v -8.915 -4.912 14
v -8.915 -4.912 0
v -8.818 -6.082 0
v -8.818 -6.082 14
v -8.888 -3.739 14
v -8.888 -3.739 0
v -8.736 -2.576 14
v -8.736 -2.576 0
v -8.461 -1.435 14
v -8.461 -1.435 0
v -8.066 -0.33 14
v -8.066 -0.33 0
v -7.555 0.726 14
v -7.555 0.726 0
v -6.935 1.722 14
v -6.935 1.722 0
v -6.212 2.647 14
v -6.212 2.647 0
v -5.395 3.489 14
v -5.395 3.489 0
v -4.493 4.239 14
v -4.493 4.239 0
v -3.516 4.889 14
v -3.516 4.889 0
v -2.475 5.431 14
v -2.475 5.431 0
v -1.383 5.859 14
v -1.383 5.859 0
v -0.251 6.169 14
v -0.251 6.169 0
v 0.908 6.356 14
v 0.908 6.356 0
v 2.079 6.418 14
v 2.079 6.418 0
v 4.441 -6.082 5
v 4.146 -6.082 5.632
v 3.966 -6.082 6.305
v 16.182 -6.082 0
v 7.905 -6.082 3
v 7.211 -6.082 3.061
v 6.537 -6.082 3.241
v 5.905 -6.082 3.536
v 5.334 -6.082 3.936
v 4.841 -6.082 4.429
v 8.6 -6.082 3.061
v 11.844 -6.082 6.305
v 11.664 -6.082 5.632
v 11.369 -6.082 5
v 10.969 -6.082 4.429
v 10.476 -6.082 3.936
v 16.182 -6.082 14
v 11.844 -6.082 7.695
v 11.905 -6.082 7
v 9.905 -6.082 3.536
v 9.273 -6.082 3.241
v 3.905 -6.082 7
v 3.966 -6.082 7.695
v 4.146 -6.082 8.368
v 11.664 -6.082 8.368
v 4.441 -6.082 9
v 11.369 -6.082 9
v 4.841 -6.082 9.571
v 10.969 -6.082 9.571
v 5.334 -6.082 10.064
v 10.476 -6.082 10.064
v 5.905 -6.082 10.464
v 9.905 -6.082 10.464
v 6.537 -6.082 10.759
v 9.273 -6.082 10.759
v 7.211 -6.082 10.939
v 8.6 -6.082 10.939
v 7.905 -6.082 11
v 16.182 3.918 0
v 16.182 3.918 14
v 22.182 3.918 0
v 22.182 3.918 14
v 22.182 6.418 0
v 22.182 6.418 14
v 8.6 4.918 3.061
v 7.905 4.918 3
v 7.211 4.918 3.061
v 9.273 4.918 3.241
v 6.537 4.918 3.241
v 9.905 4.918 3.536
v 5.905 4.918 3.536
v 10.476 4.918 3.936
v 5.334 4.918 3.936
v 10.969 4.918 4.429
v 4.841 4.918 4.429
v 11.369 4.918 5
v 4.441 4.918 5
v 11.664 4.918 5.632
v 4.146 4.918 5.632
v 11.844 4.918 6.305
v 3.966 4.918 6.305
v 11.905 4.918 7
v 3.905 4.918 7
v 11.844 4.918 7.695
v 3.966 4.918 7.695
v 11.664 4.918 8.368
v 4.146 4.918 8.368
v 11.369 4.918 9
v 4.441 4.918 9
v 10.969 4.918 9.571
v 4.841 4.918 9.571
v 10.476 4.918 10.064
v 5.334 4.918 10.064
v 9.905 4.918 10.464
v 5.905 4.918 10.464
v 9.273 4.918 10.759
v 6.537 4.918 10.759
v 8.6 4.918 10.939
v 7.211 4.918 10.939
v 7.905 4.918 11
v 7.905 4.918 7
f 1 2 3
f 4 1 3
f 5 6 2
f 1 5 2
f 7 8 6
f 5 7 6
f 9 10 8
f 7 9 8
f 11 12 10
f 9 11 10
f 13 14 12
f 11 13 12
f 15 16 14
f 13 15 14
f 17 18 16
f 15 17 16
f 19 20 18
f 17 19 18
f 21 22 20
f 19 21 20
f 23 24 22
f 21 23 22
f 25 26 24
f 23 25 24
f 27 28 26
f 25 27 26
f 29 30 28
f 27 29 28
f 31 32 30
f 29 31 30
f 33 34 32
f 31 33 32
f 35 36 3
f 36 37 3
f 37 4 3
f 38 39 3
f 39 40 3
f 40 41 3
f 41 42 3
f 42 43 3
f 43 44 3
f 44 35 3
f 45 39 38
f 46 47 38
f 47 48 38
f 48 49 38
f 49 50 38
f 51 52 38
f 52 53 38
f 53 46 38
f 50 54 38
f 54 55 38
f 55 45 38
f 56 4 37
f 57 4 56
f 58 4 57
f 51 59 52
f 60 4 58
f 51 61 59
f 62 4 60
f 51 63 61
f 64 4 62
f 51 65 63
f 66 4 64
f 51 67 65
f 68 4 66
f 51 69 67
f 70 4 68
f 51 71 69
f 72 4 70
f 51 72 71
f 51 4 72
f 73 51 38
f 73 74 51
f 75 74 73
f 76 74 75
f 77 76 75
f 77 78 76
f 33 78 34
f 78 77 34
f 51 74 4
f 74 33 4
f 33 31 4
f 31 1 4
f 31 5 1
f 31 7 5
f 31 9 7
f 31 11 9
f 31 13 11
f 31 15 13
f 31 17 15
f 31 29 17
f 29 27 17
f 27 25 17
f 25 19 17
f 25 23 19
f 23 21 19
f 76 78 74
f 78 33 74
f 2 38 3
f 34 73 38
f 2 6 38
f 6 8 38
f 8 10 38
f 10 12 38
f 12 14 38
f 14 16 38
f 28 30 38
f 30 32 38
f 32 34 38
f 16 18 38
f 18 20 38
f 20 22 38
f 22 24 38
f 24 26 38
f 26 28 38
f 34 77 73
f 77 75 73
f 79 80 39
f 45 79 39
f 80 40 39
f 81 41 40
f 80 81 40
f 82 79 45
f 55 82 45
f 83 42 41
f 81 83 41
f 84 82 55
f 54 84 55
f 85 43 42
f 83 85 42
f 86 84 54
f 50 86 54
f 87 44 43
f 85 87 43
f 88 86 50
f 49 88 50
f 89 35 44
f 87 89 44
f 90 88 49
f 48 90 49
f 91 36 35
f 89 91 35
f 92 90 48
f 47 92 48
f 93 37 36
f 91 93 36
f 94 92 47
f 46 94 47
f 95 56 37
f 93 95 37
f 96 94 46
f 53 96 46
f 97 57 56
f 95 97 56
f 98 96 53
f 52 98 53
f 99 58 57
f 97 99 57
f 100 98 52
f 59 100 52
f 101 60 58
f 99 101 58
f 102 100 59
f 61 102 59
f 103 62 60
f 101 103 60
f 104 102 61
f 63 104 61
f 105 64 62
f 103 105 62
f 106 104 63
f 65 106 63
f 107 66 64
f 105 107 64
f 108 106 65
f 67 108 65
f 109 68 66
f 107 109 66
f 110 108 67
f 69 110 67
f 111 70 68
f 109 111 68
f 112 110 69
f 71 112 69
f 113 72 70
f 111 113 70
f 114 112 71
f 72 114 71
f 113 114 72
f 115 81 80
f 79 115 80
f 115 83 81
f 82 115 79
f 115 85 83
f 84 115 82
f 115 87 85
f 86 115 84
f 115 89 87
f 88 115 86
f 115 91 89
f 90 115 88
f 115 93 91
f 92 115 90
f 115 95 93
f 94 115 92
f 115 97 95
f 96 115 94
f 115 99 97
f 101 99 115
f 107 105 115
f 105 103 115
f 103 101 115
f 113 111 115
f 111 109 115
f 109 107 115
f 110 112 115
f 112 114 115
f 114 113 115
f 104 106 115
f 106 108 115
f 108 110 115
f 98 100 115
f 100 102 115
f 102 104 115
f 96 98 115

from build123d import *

# Parameters (mm, degrees)
BOSS_EXTRUDE1_DEPTH = 14
SKETCH2_R           = 4
CUT_EXTRUDE1_DEPTH  = 11


with BuildPart() as part:
    # Sketch1 → Boss-Extrude1 (new body)
    with BuildSketch(Plane.XY):
        with BuildLine():
            Line((-8.817662135, -6.081589164), (16.182337865, -6.081589164))
            Line((16.182337865, -6.081589164), (16.182337865, 3.918410836))
            Line((16.182337865, 3.918410836), (22.182337865, 3.918410836))
            Line((22.182337865, 3.918410836), (22.182337865, 6.418410836))
            Line((22.182337865, 6.418410836), (2.079389137, 6.418410836))
            ThreePointArc((2.079389137, 6.418410836), (-6.21204118, 2.646753081), (-8.817662135, -6.081589164))
        make_face()
    extrude(amount=BOSS_EXTRUDE1_DEPTH)

    # Sketch2 → Cut-Extrude1 (cut)
    with BuildSketch(Plane.XZ.offset(6.081589164)):
        with Locations(Location((7.905122548, 7, 0), (0, 0, 270))):
            Circle(SKETCH2_R)
    extrude(amount=-CUT_EXTRUDE1_DEPTH, mode=Mode.SUBTRACT)


solid = part.part
